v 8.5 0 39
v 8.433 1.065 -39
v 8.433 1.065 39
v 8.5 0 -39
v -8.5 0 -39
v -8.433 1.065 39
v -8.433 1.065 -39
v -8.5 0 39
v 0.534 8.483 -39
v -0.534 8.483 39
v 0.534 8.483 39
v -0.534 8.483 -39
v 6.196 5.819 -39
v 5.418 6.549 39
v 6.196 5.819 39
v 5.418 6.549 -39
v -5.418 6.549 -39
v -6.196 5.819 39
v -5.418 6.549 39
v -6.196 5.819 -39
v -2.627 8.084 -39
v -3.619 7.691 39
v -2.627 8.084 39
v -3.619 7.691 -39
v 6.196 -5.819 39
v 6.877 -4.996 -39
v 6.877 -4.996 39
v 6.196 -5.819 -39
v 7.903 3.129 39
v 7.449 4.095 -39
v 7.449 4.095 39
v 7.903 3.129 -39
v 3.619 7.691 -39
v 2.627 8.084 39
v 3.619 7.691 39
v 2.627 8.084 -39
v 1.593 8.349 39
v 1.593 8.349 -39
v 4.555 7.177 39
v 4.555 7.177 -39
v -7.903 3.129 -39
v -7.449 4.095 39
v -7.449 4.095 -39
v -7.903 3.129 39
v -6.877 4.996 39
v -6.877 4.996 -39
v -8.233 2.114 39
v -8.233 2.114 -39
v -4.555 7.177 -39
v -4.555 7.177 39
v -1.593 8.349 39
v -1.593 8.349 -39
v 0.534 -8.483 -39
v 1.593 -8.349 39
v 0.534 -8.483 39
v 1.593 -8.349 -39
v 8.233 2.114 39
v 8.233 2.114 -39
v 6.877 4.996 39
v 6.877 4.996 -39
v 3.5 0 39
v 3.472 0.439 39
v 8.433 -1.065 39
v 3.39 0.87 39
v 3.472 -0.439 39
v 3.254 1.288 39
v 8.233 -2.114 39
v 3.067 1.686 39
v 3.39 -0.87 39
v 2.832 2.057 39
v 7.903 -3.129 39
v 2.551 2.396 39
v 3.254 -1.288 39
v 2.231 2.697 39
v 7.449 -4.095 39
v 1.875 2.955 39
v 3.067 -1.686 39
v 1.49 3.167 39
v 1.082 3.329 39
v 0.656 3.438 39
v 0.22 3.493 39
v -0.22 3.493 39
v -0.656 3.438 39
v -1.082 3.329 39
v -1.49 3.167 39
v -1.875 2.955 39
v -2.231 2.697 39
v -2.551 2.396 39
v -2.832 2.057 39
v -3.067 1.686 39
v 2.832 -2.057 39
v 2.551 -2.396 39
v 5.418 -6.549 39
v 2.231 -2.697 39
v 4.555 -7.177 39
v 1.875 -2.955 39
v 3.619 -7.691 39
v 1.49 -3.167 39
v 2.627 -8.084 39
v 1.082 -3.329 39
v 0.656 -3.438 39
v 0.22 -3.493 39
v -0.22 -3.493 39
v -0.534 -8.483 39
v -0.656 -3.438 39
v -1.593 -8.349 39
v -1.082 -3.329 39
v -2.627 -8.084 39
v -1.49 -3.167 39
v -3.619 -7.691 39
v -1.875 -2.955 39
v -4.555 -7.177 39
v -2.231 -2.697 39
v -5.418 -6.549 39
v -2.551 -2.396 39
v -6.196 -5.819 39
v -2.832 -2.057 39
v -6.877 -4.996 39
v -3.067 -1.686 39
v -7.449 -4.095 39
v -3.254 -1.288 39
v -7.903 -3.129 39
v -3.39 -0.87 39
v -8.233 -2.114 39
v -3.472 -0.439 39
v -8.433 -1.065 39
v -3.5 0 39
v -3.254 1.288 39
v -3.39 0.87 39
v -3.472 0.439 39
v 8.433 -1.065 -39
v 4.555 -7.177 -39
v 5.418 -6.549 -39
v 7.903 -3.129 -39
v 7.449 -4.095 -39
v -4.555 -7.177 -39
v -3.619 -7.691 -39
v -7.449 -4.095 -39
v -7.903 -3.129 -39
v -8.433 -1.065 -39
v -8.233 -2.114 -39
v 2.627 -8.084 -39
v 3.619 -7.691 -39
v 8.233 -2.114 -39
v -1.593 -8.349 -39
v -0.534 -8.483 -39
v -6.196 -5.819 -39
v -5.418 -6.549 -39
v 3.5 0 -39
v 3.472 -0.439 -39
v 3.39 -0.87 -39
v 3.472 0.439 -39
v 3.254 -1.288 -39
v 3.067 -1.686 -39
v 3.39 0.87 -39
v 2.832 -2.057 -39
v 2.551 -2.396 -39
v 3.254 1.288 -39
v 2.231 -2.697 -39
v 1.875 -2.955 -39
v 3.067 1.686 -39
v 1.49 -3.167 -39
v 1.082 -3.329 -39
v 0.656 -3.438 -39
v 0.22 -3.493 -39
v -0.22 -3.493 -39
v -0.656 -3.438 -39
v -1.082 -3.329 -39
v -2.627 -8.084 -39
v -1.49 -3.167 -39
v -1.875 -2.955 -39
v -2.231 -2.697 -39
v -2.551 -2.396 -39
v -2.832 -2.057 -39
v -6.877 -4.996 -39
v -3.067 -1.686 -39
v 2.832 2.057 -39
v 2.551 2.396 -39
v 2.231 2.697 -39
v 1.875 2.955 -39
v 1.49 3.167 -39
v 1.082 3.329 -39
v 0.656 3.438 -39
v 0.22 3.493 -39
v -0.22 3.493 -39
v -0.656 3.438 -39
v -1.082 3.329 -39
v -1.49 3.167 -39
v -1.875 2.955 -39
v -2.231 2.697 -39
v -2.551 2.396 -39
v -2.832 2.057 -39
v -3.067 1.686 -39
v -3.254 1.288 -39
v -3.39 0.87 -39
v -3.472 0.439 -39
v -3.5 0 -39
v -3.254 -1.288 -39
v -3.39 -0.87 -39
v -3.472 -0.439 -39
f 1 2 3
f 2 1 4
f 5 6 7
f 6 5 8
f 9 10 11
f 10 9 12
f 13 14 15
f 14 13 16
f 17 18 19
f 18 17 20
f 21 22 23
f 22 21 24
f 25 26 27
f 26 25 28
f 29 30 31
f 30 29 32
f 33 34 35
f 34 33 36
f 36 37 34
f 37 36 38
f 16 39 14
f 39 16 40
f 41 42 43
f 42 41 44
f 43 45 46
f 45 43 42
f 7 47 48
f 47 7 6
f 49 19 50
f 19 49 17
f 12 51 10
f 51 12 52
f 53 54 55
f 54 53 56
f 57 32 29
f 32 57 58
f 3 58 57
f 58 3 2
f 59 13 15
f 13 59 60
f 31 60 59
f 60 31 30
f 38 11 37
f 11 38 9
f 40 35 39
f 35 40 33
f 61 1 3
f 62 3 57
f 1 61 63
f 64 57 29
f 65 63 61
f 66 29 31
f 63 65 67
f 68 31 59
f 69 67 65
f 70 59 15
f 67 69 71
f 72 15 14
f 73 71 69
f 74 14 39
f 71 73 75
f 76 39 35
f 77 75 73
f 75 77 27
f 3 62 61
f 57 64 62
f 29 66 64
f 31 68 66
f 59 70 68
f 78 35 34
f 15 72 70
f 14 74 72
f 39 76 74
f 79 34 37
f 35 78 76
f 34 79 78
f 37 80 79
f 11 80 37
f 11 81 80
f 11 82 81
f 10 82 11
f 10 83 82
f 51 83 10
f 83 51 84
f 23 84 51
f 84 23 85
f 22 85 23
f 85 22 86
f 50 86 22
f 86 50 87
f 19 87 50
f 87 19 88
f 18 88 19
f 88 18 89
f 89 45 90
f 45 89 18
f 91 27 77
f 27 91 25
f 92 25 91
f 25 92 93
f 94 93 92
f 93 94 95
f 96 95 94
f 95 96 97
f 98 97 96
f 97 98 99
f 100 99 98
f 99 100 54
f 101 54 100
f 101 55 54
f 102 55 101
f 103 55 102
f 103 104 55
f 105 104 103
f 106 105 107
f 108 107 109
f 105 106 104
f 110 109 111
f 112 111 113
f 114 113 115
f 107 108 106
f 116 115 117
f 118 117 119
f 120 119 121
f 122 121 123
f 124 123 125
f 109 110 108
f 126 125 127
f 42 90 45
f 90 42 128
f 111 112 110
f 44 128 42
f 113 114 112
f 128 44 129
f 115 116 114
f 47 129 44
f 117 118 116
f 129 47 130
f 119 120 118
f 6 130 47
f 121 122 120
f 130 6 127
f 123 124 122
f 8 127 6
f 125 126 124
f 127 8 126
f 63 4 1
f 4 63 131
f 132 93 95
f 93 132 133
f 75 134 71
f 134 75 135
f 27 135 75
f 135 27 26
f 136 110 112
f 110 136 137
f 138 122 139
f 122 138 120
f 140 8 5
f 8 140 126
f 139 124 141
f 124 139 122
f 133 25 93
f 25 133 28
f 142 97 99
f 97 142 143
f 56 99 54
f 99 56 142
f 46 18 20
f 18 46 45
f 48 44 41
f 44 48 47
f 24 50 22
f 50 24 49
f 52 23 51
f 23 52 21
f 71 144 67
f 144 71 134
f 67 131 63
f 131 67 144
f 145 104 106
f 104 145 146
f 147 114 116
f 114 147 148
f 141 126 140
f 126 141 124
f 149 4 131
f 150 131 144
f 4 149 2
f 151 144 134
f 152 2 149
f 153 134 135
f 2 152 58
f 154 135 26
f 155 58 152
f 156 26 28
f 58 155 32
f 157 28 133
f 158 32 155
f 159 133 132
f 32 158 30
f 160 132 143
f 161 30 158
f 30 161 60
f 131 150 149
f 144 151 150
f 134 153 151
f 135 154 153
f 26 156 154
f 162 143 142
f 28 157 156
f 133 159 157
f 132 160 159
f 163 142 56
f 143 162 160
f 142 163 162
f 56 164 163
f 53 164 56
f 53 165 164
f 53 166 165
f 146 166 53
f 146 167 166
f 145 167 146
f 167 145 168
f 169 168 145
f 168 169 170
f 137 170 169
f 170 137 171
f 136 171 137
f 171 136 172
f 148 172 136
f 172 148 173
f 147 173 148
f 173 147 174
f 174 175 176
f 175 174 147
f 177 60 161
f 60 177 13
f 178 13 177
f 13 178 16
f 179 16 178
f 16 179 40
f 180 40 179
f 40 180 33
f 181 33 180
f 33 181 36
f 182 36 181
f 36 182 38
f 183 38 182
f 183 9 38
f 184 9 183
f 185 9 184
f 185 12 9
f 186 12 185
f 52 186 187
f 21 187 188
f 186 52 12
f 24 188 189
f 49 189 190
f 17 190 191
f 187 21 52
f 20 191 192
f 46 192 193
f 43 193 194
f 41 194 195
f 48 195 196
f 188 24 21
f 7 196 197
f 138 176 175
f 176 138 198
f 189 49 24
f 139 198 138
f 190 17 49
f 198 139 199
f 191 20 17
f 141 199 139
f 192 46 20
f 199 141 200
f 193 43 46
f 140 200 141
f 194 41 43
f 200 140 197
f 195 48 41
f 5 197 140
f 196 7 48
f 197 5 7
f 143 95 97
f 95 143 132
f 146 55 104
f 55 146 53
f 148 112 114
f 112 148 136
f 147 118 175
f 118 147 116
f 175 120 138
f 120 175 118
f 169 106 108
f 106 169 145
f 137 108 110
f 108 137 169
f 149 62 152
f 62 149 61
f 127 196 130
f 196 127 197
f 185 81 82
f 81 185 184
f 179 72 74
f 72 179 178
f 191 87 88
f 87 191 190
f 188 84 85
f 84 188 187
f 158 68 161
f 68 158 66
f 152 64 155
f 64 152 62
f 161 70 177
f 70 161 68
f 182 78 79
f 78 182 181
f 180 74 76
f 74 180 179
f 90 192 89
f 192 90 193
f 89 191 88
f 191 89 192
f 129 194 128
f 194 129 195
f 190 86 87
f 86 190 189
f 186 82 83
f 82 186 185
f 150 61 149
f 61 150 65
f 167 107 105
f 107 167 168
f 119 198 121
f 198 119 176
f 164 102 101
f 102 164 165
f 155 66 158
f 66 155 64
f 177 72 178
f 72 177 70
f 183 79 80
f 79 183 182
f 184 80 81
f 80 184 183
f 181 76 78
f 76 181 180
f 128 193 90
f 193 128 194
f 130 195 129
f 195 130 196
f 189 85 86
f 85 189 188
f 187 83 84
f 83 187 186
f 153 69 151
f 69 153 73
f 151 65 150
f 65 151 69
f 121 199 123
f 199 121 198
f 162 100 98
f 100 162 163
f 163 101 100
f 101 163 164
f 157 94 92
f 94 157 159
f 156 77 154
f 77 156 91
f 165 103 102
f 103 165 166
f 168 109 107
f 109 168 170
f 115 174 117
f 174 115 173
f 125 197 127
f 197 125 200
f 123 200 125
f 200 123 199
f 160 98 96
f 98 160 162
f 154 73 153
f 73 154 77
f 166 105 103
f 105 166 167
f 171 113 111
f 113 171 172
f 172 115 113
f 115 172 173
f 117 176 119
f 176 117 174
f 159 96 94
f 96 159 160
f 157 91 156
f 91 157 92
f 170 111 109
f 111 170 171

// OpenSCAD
$fn = 50;


difference() {
	union() {
		translate(v = [0, 0, -39.0000000000]) {
			cylinder(h = 78, r = 8.5000000000);
		}
	}
	union() {
		translate(v = [0, 0, -100.0000000000]) {
			cylinder(h = 200, r = 3.5000000000);
		}
	}
}
